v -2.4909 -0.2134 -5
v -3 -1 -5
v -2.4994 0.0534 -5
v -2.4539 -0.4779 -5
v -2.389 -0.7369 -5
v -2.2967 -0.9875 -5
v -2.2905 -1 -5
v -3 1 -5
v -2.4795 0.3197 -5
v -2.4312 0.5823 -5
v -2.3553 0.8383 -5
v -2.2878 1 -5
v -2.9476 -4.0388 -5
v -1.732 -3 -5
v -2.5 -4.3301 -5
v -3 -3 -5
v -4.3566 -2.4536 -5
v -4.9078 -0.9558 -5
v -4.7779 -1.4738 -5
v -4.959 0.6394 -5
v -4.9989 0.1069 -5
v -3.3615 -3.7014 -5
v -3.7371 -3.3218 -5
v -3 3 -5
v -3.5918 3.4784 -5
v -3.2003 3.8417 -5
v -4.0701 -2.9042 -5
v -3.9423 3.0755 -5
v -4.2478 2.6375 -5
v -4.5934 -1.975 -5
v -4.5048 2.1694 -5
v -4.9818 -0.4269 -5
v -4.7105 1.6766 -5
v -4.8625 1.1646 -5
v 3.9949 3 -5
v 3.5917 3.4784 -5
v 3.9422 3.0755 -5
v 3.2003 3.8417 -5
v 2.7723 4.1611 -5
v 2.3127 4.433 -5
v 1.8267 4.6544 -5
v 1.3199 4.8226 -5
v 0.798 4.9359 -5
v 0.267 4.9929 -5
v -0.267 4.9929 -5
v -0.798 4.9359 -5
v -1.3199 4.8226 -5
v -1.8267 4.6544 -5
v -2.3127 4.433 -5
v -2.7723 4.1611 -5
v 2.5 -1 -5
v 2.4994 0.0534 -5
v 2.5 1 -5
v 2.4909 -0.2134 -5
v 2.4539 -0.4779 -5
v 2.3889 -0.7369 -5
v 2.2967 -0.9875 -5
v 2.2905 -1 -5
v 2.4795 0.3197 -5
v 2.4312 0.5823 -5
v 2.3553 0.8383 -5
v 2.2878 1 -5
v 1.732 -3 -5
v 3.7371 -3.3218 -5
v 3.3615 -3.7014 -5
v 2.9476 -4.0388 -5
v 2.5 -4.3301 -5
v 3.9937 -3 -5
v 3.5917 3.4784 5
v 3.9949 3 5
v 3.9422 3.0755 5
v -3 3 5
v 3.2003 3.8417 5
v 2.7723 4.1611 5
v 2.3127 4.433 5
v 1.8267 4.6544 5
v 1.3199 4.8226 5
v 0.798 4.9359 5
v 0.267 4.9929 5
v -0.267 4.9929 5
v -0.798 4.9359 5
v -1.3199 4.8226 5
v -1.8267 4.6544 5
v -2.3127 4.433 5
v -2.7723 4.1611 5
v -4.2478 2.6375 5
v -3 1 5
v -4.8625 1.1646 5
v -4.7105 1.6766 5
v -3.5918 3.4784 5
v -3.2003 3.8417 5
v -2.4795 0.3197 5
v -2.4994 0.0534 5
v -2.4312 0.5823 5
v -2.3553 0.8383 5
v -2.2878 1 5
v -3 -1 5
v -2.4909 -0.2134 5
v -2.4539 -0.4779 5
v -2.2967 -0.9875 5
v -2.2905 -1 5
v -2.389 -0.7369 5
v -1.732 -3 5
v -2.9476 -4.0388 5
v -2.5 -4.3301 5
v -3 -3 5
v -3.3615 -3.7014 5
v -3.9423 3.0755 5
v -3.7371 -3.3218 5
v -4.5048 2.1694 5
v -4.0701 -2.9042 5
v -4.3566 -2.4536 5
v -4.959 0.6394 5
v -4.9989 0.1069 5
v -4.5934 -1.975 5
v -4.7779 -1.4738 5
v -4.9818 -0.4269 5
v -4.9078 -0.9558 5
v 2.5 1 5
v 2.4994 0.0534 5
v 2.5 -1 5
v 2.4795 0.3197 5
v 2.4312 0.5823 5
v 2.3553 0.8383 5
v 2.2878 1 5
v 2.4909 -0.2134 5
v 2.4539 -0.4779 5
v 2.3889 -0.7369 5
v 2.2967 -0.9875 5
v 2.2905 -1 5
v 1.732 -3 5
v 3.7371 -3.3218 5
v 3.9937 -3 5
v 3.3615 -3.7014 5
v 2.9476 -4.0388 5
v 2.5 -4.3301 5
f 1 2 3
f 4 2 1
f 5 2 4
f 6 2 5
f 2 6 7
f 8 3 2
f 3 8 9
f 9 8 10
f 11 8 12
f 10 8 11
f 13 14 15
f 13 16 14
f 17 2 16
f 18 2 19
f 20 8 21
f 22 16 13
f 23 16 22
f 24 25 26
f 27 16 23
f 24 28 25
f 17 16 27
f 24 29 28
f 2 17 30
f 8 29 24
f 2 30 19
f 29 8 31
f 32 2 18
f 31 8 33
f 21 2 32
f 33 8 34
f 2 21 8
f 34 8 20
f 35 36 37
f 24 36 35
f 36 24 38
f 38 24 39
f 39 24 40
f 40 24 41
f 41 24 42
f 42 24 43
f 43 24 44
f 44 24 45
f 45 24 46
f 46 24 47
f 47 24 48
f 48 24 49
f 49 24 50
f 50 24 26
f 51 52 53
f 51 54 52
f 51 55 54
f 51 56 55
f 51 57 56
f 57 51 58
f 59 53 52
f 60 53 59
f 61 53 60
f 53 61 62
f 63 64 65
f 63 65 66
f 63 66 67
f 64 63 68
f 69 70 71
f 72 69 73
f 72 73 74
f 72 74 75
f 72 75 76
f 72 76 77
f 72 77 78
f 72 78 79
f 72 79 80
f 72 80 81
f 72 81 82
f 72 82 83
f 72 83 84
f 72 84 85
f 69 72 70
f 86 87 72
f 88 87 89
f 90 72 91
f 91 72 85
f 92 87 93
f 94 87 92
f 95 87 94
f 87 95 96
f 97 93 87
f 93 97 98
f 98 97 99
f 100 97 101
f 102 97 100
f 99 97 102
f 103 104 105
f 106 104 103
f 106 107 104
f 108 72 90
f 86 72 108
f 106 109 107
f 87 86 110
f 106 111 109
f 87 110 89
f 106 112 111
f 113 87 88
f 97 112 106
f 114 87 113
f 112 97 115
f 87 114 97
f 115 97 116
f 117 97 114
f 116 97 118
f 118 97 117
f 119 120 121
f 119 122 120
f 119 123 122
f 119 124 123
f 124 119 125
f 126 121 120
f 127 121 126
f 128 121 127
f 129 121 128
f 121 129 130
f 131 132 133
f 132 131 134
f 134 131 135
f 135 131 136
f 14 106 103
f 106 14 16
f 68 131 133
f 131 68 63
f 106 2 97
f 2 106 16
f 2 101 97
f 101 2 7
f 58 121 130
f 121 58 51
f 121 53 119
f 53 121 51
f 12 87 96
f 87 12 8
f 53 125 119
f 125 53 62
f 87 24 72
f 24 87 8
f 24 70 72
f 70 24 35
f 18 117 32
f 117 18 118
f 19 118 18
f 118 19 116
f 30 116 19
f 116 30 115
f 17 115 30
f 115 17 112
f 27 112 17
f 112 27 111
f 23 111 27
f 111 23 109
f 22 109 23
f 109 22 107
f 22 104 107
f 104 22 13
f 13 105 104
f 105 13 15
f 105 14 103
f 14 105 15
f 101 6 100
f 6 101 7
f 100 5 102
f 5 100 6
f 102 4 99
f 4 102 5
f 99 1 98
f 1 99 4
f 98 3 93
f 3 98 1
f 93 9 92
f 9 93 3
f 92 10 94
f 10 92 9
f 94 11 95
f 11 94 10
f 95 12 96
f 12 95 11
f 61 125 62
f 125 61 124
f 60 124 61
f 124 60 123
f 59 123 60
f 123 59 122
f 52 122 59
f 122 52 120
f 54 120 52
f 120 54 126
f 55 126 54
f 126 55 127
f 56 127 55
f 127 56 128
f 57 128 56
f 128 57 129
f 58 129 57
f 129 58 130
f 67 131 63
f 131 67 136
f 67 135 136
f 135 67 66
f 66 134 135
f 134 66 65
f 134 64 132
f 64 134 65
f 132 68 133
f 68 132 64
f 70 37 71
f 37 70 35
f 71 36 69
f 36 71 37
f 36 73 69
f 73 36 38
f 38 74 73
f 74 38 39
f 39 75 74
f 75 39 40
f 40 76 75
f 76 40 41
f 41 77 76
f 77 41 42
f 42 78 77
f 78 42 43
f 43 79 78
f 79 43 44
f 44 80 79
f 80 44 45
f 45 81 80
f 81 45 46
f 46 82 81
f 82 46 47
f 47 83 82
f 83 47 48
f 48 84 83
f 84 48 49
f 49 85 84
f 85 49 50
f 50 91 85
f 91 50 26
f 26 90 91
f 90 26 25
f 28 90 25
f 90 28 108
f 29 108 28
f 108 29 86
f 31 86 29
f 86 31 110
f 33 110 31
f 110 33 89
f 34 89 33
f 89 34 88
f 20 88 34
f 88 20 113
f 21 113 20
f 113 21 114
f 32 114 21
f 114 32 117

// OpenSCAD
// Generated by SolidPython 1.1.3 on 2025-02-20 04:04:09
$fn=50;


intersection() {
	translate(v = [-5.0000000000, -5.0000000000, -5.0000000000]) {
		linear_extrude(height = 10) {
			polygon(points = [[0, 0], [10, 0], [10, 2.0000000000], [2.0000000000, 2.0000000000], [2.0000000000, 4.0000000000], [7.5000000000, 4.0000000000], [7.5000000000, 6.0000000000], [2.0000000000, 6.0000000000], [2.0000000000, 8.0000000000], [10, 8.0000000000], [10, 10], [0, 10]]);
		}
	}
	rotate(a = -90, v = [0, 0, 1]) {
		translate(v = [-5.0000000000, -5.0000000000, -5.0000000000]) {
			linear_extrude(height = 10) {
				polygon(points = [[9.3301270189, 7.5000000000], [9.0387948484, 7.9475644476], [8.7013899854, 8.3615044513], [8.3217613875, 8.7370979763], [7.9042396813, 9.0700604263], [7.4535877600, 9.3565935206], [6.9749464512, 9.5934286231], [6.4737758721, 9.7778640289], [5.9557931435, 9.9077957850], [5.4269071715, 9.9817416901], [4.8931512411, 9.9988582039], [4.3606141916, 9.9589500691], [3.8353709579, 9.8624725392], [3.3234132705, 9.7105261849], [2.8305813044, 9.5048443395], [2.3624970575, 9.2477733259], [1.9245002169, 8.9422456905], [1.5215872470, 8.5917467505], [1.1583543913, 8.2002748347], [0.8389452414, 7.7722956725], [0.5670034681, 7.3126914512], [0.3456312568, 6.8267051218], [0.1773539185, 6.3198805903], [0.0640910829, 5.7979994752], [0.0071347997, 5.2670151533], [0.0071347997, 4.7329848467], [0.0640910829, 4.2020005248], [0.1773539185, 3.6801194097], [0.3456312568, 3.1732948782], [0.5670034681, 2.6873085488], [0.8389452414, 2.2277043275], [1.1583543913, 1.7997251653], [1.5215872470, 1.4082532495], [1.9245002169, 1.0577543095], [2.3624970575, 0.7522266741], [2.8305813044, 0.4951556605], [3.3234132705, 0.2894738151], [3.8353709579, 0.1375274608], [4.3606141916, 0.0410499309], [4.8931512411, 0.0011417961], [5.4269071715, 0.0182583099], [5.9557931435, 0.0922042150], [6.4737758721, 0.2221359711], [6.9749464512, 0.4065713769], [7.4535877600, 0.6434064794], [7.9042396813, 0.9299395737], [8.3217613875, 1.2629020237], [8.7013899854, 1.6384955487], [9.0387948484, 2.0524355524], [9.3301270189, 2.5000000000], [7.1650635095, 3.7500000000], [7.0193974242, 3.5262177762], [6.8506949927, 3.3192477743], [6.6608806938, 3.1314510119], [6.4521198406, 2.9649697869], [6.2267938800, 2.8217032397], [5.9874732256, 2.7032856885], [5.7368879360, 2.6110679855], [5.4778965718, 2.5461021075], [5.2134535857, 2.5091291549], [4.9465756205, 2.5005708980], [4.6803070958, 2.5205249654], [4.4176854790, 2.5687637304], [4.1617066352, 2.6447369076], [3.9152906522, 2.7475778302], [3.6812485287, 2.8761133371], [3.4622501085, 3.0288771547], [3.2607936235, 3.2041266248], [3.0791771957, 3.3998625827], [2.9194726207, 3.6138521637], [2.7835017341, 3.8436542744], [2.6728156284, 4.0866474391], [2.5886769593, 4.3400597048], [2.5320455415, 4.6010002624], [2.5035673999, 4.8664924234], [2.5035673999, 5.1335075766], [2.5320455415, 5.3989997376], [2.5886769593, 5.6599402952], [2.6728156284, 5.9133525609], [2.7835017341, 6.1563457256], [2.9194726207, 6.3861478363], [3.0791771957, 6.6001374173], [3.2607936235, 6.7958733752], [3.4622501085, 6.9711228453], [3.6812485287, 7.1238866629], [3.9152906522, 7.2524221698], [4.1617066352, 7.3552630924], [4.4176854790, 7.4312362696], [4.6803070958, 7.4794750346], [4.9465756205, 7.4994291020], [5.2134535857, 7.4908708451], [5.4778965718, 7.4538978925], [5.7368879360, 7.3889320145], [5.9874732256, 7.2967143115], [6.2267938800, 7.1782967603], [6.4521198406, 7.0350302131], [6.6608806938, 6.8685489881], [6.8506949927, 6.6807522257], [7.0193974242, 6.4737822238], [7.1650635095, 6.2500000000]]);
			}
		}
	}
}
/***********************************************
*********      SolidPython code:      **********
************************************************
 
from solid import *
from solid.utils import *

import math
import matplotlib.pyplot as plt
import subprocess
import os

class Hole:
    def __init__(self, x, y, radius):
        """
        Hole defined by:
        :param x: x dimension for center point of the circle as a ratio of letter height
        :param y: y dimension for center point of the circle as a ratio of letter height
        :param radius: radius of circle as a ratio of letter height
        """
        self.x = x
        self.y = y
        self.radius = radius

class Letter3D:
    def __init__(self, name, outer_shape_points, height, holes=None):
        """
        3D Letter defined by:
        :param name: name of letter
        :param outer_shape_points: points defining the outer shape of the letter
        :param heigh: size of cube that letter fits inside
        :param holes: list of Holes
        """
        self.name = name
        self.outer_shape_points = outer_shape_points
        self.holes = holes if holes is None else []
        self.height = height


    def generate(self):
        shape = polygon(points=self.outer_shape_points)

        if self.holes:
            for hole in self.holes:
                circle_hole = circle(r=hole.radius*self.height)
                positioned_hole = translate([hole.x*self.height, hole.y*self.height])(circle_hole)
                shape = difference()(shape, positioned_hole)
        
        shape_3d = linear_extrude(height=self.height)(shape)
        shape_3d = translate([-self.height/2, -self.height/2, -self.height/2])(shape_3d)
        return shape_3d
    
    def render(self):
        scad_render_to_file(self.shape, f"output/{self.name}.scad", file_header='$fn=50;')
        subprocess.run(["C:\\Program Files\\OpenSCAD\\openscad.exe", "-o", f"output\\{self.name}.stl", f"output\\{self.name}.scad"])


class TwoLetter3D:
    def __init__(self, height, letterA, letterA_face, letterB=None, letterB_face=None):
        self.height = height
        self.letterA = letterA
        self.letterB = letterB
        self.letterA_face = letterA_face
        self.letterB_face = letterB_face

    def call_letter_generation(self, letter):
        letter = letter.upper()
        function_name = f"letter_{letter}"
        func = globals().get(function_name)
        if func is None:
            raise ValueError(f"No letter generation function defined for letter '{letter}'.")
        else:
            print(func)
        return func(self.height)
    
    def rotate_object(self, face, shape):
        face = face.lower()
        if face == "z":
            return shape
        if face == "x":
            return rotate(a=90, v=[0,1,0])(shape)
        if face == "y":
            return rotate(a=-90, v=[0,0,1])(shape)
        else:
            raise ValueError("Face must be one of 'x', 'y', or 'z'.")

    def render(self):
        if self.letterA:
            letterA3D = self.call_letter_generation(self.letterA)
            letterA3D = self.rotate_object(self.letterA_face, letterA3D)

        if self.letterB:
            letterB3D = self.call_letter_generation(self.letterB)
            letterB3D = self.rotate_object(self.letterB_face, letterB3D)
            combined = intersection()(letterA3D, letterB3D)
            file_name = self.letterA + self.letterB
            scad_render_to_file(combined, f"output/{file_name}.scad", file_header='$fn=50;')
            subprocess.run(["C:\\Program Files\\OpenSCAD\\openscad.exe", "-o", f"output\\{file_name}.stl", f"output\\{file_name}.scad"])
            return
        else:
            file_name = self.letterA
            scad_render_to_file(letterA3D, f"output/{file_name}.scad", file_header='$fn=50;')
            subprocess.run(["C:\\Program Files\\OpenSCAD\\openscad.exe", "-o", f"output\\{file_name}.stl", f"output\\{file_name}.scad"])
    
                

def arc_points(radius, start_angle, end_angle, center=[0,0], num_points=50):
    angles = [start_angle + i * (end_angle - start_angle) / (num_points - 1)
              for i in range(num_points)]
    points = [
        (center[0] + radius * math.cos(math.radians(angle)),
         center[1] + radius * math.sin(math.radians(angle)))
        for angle in angles
    ]
    return points

def letter_A(h):
    shape_points = [(0,0), (h/2, h), (h, 0), (5/6*h, 0), (2/3*h, 1/3*h), (1/3*h, 1/3*h), (h/6, 0)]
    holes = [Hole(1/2, 7/12, 1/6)]
    A = Letter3D("A", shape_points, h, holes)
    return A.generate()

def letter_B(h):
    top_arc_points = arc_points(h/4, 90, -90, center=[3/4*h, 3/4*h])
    bottom_arc_points = arc_points(h/4, 90, -90, center=[3/4*h, h/4])
    other_points = [(0,0),(0,h)]

    shape_points = top_arc_points + bottom_arc_points + other_points
    holes = [Hole(1/2, 3/4, 1/6), Hole(1/2, 1/4, 1/6)]
    B = Letter3D("B", shape_points, h, holes)
    return B.generate()

def letter_C(h):
    outer_arc_points = arc_points(h/2, 30, 330, center=[h/2,h/2])
    inner_arc_points = arc_points(h/4, 30, 330, center=[h/2,h/2])[::-1]
    shape_points = outer_arc_points + inner_arc_points
    # print(shape_points)
    C = Letter3D("C", shape_points, h)
    return C.generate()


def letter_D(h):
    outer_arc_points = arc_points(h/2, 90, -90, center= [h/2, h/2])
    shape_points = outer_arc_points + [(0,0), (0, h)]
    holes = [Hole(1/2, 1/2, 1/6)]
    D = Letter3D("D", shape_points, h, holes)
    return D.generate()

def letter_E(h):
    points = [(0,0), (h,0), (h,h/5), (h/5,h/5), (h/5,2/5*h), (3/4*h,2/5*h), (3/4*h,3/5*h), (h/5,3/5*h), (h/5,4/5*h), (h,4/5*h), (h,h), (0,h)]
    E = Letter3D("E", points, h)
    return E.generate()

def letter_F(h):
    points = [(0,0), (h/5,0), (h/5,2/5*h), (3/4*h,2/5*h), (3/4*h,3/5*h), (h/5,3/5*h), (h/5,4/5*h), (h,4/5*h), (h,h), (0,h)]
    F = Letter3D("F", points, h)
    return F.generate()

if __name__ == "__main__":
    os.makedirs("output", exist_ok=True)
    
    letters = [chr(x) for x in range(ord('A'), ord('F') + 1)]
    for letter in letters:
        for other_letter in letters:
            shape = TwoLetter3D(10, letter, "z", other_letter, "y")
            shape.render()
 
 
************************************************/
